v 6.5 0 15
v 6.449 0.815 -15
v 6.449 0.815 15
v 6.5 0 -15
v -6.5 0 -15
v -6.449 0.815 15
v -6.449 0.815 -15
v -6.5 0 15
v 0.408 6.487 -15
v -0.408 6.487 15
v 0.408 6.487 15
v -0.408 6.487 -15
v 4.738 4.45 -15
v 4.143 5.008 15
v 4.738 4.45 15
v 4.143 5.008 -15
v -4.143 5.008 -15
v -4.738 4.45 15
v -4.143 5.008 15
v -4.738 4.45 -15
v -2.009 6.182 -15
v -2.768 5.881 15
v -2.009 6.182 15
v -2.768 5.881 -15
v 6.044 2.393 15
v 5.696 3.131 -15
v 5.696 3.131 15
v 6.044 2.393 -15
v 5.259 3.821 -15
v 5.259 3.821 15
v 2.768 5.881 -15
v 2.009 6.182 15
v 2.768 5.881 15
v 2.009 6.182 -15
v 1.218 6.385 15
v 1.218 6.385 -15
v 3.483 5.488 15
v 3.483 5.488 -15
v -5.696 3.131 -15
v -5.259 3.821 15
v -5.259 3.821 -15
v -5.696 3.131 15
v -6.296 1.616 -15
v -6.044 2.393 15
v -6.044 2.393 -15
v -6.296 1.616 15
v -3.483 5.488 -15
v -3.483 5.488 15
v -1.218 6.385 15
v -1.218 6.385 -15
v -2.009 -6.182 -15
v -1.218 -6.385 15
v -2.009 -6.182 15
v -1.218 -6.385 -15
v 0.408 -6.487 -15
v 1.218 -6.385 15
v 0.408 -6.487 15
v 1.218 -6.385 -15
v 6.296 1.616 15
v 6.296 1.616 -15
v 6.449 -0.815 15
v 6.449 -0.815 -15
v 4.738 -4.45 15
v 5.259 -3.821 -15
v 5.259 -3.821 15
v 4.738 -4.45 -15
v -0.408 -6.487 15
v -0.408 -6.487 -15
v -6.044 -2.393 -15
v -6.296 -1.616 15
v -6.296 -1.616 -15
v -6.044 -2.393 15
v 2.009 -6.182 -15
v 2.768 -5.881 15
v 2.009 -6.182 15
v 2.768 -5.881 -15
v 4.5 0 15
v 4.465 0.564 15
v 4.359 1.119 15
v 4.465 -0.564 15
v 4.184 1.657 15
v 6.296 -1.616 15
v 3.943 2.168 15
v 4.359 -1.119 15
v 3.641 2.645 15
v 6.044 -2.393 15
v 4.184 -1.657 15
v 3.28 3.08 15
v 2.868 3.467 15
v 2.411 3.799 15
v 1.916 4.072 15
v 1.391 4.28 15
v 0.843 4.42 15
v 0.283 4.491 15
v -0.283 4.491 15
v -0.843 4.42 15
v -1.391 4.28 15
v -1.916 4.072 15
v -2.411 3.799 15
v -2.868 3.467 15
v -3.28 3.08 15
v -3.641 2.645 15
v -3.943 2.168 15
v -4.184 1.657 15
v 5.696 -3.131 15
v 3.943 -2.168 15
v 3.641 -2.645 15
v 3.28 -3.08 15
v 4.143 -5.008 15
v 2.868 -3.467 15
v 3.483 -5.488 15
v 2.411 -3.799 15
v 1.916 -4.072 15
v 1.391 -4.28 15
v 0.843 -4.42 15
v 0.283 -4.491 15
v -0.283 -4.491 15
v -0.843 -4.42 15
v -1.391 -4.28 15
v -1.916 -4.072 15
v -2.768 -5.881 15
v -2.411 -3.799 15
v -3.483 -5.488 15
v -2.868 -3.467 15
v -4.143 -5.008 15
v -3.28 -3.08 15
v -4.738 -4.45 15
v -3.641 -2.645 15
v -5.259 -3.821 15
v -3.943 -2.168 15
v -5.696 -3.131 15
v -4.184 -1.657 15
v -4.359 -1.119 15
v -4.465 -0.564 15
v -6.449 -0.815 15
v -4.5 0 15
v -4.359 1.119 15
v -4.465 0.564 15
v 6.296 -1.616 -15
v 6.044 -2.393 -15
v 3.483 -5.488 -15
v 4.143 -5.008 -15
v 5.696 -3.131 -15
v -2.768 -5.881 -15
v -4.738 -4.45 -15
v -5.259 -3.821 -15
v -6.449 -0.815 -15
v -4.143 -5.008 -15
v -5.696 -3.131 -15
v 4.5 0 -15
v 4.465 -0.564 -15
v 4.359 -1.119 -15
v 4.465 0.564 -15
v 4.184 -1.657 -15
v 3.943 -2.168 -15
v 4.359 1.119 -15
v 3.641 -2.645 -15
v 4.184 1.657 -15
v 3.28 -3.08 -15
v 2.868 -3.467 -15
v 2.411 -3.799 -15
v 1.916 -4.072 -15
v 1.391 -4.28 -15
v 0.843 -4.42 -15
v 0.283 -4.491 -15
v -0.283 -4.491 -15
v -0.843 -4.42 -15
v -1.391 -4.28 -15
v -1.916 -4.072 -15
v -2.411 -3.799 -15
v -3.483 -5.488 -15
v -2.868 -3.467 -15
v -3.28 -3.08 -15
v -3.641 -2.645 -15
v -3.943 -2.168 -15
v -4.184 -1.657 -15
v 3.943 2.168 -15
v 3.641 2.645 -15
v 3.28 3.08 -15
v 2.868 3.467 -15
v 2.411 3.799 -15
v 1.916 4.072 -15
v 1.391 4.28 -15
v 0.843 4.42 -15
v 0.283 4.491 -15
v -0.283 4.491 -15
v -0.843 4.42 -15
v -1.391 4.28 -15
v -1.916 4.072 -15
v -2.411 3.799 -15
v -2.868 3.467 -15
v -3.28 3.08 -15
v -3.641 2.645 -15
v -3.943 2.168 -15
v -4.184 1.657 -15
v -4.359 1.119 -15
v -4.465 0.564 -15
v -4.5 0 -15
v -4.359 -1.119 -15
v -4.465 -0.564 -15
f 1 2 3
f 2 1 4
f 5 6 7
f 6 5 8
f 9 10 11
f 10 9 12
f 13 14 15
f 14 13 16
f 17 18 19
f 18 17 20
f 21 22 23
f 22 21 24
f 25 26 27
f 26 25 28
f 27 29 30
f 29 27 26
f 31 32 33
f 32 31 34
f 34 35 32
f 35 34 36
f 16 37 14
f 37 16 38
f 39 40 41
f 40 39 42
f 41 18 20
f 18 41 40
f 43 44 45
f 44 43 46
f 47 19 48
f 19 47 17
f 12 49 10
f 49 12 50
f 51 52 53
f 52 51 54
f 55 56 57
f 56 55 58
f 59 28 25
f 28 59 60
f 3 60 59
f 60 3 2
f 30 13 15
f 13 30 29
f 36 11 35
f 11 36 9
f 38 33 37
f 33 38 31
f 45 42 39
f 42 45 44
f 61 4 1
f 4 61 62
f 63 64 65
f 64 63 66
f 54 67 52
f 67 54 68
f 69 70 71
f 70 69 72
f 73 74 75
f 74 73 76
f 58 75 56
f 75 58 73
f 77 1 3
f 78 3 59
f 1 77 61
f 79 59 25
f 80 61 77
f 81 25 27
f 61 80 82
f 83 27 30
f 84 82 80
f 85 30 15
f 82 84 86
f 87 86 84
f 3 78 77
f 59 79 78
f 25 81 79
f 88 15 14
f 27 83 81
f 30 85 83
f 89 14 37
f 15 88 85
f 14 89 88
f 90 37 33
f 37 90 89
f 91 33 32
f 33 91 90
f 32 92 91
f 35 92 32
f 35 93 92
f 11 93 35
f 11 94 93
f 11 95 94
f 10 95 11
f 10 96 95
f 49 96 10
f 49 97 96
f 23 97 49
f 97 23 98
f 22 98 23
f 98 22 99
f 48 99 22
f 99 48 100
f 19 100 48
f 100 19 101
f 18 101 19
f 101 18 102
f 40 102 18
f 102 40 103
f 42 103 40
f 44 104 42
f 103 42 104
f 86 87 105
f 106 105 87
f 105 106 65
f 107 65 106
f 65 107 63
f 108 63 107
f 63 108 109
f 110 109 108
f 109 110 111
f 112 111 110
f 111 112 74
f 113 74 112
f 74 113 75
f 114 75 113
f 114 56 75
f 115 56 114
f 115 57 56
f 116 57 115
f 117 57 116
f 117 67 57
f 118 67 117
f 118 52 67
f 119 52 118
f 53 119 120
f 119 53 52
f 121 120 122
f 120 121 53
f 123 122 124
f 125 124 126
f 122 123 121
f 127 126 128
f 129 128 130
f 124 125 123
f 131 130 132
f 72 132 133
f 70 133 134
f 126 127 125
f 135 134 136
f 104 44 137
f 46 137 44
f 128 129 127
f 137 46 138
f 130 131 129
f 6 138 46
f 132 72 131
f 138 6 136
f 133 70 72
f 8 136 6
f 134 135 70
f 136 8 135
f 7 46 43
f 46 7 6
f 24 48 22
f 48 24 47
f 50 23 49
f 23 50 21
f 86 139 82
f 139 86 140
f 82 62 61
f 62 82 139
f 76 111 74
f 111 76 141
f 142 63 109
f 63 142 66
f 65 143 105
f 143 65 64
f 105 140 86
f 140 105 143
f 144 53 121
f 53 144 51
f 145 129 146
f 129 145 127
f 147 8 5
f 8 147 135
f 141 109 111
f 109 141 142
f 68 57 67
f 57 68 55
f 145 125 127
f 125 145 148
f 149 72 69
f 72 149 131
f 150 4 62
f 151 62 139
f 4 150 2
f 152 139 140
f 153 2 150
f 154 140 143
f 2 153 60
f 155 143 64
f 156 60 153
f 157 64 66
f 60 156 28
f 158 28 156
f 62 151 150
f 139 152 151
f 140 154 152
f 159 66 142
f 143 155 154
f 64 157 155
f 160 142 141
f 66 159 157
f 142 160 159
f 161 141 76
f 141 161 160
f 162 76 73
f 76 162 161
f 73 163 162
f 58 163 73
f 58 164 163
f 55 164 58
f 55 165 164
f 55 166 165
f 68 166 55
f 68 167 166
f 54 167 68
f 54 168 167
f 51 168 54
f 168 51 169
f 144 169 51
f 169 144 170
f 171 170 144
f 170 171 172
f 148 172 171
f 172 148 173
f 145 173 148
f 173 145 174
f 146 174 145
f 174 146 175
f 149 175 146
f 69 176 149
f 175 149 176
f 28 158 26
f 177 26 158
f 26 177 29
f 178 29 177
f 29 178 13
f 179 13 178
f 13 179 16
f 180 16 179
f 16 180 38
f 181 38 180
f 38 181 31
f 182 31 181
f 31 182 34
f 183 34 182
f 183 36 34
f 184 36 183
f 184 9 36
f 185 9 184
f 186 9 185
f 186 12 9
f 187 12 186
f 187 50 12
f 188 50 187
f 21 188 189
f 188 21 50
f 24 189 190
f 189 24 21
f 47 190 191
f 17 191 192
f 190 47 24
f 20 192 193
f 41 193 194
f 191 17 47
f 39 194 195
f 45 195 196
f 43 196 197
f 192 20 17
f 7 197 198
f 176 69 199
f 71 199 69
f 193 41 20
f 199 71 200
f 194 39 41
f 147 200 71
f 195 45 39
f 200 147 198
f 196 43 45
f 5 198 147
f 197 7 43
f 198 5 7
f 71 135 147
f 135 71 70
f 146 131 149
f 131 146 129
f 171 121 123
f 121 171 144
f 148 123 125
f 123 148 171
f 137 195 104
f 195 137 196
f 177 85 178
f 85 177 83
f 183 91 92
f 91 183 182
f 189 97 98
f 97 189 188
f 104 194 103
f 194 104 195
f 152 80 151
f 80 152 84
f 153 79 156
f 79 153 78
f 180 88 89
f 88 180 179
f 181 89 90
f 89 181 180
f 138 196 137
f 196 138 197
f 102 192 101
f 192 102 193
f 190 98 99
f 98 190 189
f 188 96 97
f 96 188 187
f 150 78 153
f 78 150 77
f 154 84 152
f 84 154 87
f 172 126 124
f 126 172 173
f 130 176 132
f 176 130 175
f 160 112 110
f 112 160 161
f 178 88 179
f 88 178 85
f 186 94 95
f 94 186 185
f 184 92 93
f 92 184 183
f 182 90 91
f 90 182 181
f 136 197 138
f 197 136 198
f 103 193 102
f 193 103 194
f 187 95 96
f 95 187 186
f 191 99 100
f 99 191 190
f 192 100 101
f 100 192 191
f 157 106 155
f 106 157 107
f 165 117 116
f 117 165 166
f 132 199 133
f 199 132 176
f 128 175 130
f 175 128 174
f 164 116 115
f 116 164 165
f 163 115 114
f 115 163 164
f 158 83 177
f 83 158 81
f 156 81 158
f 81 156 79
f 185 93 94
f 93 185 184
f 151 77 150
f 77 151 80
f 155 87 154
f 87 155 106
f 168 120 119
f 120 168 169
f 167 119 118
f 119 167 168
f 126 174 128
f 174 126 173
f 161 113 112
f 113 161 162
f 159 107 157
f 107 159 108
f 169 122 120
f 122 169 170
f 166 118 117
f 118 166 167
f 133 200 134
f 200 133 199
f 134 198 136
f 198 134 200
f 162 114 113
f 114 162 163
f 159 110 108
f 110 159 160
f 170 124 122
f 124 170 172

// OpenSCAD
$fn = 50;


difference() {
	union() {
		translate(v = [0, 0, -15.0000000000]) {
			cylinder(h = 30, r = 6.5000000000);
		}
	}
	union() {
		translate(v = [0, 0, -100.0000000000]) {
			cylinder(h = 200, r = 4.5000000000);
		}
	}
}
